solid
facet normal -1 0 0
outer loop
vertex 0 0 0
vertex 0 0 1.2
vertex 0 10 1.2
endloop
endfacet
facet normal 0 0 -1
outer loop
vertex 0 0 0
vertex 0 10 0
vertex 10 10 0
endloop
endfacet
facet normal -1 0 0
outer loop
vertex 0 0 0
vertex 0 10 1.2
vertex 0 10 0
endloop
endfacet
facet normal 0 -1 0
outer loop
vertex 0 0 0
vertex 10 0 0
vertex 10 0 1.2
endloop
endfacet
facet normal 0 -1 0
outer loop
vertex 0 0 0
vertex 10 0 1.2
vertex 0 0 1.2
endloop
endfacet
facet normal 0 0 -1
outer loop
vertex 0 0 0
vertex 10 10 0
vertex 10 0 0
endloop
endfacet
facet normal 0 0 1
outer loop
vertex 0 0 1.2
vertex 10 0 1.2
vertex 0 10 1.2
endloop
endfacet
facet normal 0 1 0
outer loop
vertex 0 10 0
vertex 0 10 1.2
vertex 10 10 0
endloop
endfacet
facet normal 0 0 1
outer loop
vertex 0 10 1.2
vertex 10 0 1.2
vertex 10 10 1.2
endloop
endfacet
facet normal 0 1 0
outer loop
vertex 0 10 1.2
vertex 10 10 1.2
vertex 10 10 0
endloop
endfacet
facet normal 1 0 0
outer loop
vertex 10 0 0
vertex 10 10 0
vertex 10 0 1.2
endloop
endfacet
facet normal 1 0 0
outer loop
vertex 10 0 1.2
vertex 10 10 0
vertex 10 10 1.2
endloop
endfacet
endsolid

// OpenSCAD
/* Warning, this is a very basic generator with a lot of approximation 
input data : [TFBGA, B4B, 10x10x1.2mm, 144, , A, C04-21137A]
generated by com.zoubworld.electronics.cad.model3d.Basic
Date : Sun Feb 15 10:50:49 CET 2026
*/

//body
color("black")
translate([0,0,0])
cube([10.0,10.0,1.2], center=false);
